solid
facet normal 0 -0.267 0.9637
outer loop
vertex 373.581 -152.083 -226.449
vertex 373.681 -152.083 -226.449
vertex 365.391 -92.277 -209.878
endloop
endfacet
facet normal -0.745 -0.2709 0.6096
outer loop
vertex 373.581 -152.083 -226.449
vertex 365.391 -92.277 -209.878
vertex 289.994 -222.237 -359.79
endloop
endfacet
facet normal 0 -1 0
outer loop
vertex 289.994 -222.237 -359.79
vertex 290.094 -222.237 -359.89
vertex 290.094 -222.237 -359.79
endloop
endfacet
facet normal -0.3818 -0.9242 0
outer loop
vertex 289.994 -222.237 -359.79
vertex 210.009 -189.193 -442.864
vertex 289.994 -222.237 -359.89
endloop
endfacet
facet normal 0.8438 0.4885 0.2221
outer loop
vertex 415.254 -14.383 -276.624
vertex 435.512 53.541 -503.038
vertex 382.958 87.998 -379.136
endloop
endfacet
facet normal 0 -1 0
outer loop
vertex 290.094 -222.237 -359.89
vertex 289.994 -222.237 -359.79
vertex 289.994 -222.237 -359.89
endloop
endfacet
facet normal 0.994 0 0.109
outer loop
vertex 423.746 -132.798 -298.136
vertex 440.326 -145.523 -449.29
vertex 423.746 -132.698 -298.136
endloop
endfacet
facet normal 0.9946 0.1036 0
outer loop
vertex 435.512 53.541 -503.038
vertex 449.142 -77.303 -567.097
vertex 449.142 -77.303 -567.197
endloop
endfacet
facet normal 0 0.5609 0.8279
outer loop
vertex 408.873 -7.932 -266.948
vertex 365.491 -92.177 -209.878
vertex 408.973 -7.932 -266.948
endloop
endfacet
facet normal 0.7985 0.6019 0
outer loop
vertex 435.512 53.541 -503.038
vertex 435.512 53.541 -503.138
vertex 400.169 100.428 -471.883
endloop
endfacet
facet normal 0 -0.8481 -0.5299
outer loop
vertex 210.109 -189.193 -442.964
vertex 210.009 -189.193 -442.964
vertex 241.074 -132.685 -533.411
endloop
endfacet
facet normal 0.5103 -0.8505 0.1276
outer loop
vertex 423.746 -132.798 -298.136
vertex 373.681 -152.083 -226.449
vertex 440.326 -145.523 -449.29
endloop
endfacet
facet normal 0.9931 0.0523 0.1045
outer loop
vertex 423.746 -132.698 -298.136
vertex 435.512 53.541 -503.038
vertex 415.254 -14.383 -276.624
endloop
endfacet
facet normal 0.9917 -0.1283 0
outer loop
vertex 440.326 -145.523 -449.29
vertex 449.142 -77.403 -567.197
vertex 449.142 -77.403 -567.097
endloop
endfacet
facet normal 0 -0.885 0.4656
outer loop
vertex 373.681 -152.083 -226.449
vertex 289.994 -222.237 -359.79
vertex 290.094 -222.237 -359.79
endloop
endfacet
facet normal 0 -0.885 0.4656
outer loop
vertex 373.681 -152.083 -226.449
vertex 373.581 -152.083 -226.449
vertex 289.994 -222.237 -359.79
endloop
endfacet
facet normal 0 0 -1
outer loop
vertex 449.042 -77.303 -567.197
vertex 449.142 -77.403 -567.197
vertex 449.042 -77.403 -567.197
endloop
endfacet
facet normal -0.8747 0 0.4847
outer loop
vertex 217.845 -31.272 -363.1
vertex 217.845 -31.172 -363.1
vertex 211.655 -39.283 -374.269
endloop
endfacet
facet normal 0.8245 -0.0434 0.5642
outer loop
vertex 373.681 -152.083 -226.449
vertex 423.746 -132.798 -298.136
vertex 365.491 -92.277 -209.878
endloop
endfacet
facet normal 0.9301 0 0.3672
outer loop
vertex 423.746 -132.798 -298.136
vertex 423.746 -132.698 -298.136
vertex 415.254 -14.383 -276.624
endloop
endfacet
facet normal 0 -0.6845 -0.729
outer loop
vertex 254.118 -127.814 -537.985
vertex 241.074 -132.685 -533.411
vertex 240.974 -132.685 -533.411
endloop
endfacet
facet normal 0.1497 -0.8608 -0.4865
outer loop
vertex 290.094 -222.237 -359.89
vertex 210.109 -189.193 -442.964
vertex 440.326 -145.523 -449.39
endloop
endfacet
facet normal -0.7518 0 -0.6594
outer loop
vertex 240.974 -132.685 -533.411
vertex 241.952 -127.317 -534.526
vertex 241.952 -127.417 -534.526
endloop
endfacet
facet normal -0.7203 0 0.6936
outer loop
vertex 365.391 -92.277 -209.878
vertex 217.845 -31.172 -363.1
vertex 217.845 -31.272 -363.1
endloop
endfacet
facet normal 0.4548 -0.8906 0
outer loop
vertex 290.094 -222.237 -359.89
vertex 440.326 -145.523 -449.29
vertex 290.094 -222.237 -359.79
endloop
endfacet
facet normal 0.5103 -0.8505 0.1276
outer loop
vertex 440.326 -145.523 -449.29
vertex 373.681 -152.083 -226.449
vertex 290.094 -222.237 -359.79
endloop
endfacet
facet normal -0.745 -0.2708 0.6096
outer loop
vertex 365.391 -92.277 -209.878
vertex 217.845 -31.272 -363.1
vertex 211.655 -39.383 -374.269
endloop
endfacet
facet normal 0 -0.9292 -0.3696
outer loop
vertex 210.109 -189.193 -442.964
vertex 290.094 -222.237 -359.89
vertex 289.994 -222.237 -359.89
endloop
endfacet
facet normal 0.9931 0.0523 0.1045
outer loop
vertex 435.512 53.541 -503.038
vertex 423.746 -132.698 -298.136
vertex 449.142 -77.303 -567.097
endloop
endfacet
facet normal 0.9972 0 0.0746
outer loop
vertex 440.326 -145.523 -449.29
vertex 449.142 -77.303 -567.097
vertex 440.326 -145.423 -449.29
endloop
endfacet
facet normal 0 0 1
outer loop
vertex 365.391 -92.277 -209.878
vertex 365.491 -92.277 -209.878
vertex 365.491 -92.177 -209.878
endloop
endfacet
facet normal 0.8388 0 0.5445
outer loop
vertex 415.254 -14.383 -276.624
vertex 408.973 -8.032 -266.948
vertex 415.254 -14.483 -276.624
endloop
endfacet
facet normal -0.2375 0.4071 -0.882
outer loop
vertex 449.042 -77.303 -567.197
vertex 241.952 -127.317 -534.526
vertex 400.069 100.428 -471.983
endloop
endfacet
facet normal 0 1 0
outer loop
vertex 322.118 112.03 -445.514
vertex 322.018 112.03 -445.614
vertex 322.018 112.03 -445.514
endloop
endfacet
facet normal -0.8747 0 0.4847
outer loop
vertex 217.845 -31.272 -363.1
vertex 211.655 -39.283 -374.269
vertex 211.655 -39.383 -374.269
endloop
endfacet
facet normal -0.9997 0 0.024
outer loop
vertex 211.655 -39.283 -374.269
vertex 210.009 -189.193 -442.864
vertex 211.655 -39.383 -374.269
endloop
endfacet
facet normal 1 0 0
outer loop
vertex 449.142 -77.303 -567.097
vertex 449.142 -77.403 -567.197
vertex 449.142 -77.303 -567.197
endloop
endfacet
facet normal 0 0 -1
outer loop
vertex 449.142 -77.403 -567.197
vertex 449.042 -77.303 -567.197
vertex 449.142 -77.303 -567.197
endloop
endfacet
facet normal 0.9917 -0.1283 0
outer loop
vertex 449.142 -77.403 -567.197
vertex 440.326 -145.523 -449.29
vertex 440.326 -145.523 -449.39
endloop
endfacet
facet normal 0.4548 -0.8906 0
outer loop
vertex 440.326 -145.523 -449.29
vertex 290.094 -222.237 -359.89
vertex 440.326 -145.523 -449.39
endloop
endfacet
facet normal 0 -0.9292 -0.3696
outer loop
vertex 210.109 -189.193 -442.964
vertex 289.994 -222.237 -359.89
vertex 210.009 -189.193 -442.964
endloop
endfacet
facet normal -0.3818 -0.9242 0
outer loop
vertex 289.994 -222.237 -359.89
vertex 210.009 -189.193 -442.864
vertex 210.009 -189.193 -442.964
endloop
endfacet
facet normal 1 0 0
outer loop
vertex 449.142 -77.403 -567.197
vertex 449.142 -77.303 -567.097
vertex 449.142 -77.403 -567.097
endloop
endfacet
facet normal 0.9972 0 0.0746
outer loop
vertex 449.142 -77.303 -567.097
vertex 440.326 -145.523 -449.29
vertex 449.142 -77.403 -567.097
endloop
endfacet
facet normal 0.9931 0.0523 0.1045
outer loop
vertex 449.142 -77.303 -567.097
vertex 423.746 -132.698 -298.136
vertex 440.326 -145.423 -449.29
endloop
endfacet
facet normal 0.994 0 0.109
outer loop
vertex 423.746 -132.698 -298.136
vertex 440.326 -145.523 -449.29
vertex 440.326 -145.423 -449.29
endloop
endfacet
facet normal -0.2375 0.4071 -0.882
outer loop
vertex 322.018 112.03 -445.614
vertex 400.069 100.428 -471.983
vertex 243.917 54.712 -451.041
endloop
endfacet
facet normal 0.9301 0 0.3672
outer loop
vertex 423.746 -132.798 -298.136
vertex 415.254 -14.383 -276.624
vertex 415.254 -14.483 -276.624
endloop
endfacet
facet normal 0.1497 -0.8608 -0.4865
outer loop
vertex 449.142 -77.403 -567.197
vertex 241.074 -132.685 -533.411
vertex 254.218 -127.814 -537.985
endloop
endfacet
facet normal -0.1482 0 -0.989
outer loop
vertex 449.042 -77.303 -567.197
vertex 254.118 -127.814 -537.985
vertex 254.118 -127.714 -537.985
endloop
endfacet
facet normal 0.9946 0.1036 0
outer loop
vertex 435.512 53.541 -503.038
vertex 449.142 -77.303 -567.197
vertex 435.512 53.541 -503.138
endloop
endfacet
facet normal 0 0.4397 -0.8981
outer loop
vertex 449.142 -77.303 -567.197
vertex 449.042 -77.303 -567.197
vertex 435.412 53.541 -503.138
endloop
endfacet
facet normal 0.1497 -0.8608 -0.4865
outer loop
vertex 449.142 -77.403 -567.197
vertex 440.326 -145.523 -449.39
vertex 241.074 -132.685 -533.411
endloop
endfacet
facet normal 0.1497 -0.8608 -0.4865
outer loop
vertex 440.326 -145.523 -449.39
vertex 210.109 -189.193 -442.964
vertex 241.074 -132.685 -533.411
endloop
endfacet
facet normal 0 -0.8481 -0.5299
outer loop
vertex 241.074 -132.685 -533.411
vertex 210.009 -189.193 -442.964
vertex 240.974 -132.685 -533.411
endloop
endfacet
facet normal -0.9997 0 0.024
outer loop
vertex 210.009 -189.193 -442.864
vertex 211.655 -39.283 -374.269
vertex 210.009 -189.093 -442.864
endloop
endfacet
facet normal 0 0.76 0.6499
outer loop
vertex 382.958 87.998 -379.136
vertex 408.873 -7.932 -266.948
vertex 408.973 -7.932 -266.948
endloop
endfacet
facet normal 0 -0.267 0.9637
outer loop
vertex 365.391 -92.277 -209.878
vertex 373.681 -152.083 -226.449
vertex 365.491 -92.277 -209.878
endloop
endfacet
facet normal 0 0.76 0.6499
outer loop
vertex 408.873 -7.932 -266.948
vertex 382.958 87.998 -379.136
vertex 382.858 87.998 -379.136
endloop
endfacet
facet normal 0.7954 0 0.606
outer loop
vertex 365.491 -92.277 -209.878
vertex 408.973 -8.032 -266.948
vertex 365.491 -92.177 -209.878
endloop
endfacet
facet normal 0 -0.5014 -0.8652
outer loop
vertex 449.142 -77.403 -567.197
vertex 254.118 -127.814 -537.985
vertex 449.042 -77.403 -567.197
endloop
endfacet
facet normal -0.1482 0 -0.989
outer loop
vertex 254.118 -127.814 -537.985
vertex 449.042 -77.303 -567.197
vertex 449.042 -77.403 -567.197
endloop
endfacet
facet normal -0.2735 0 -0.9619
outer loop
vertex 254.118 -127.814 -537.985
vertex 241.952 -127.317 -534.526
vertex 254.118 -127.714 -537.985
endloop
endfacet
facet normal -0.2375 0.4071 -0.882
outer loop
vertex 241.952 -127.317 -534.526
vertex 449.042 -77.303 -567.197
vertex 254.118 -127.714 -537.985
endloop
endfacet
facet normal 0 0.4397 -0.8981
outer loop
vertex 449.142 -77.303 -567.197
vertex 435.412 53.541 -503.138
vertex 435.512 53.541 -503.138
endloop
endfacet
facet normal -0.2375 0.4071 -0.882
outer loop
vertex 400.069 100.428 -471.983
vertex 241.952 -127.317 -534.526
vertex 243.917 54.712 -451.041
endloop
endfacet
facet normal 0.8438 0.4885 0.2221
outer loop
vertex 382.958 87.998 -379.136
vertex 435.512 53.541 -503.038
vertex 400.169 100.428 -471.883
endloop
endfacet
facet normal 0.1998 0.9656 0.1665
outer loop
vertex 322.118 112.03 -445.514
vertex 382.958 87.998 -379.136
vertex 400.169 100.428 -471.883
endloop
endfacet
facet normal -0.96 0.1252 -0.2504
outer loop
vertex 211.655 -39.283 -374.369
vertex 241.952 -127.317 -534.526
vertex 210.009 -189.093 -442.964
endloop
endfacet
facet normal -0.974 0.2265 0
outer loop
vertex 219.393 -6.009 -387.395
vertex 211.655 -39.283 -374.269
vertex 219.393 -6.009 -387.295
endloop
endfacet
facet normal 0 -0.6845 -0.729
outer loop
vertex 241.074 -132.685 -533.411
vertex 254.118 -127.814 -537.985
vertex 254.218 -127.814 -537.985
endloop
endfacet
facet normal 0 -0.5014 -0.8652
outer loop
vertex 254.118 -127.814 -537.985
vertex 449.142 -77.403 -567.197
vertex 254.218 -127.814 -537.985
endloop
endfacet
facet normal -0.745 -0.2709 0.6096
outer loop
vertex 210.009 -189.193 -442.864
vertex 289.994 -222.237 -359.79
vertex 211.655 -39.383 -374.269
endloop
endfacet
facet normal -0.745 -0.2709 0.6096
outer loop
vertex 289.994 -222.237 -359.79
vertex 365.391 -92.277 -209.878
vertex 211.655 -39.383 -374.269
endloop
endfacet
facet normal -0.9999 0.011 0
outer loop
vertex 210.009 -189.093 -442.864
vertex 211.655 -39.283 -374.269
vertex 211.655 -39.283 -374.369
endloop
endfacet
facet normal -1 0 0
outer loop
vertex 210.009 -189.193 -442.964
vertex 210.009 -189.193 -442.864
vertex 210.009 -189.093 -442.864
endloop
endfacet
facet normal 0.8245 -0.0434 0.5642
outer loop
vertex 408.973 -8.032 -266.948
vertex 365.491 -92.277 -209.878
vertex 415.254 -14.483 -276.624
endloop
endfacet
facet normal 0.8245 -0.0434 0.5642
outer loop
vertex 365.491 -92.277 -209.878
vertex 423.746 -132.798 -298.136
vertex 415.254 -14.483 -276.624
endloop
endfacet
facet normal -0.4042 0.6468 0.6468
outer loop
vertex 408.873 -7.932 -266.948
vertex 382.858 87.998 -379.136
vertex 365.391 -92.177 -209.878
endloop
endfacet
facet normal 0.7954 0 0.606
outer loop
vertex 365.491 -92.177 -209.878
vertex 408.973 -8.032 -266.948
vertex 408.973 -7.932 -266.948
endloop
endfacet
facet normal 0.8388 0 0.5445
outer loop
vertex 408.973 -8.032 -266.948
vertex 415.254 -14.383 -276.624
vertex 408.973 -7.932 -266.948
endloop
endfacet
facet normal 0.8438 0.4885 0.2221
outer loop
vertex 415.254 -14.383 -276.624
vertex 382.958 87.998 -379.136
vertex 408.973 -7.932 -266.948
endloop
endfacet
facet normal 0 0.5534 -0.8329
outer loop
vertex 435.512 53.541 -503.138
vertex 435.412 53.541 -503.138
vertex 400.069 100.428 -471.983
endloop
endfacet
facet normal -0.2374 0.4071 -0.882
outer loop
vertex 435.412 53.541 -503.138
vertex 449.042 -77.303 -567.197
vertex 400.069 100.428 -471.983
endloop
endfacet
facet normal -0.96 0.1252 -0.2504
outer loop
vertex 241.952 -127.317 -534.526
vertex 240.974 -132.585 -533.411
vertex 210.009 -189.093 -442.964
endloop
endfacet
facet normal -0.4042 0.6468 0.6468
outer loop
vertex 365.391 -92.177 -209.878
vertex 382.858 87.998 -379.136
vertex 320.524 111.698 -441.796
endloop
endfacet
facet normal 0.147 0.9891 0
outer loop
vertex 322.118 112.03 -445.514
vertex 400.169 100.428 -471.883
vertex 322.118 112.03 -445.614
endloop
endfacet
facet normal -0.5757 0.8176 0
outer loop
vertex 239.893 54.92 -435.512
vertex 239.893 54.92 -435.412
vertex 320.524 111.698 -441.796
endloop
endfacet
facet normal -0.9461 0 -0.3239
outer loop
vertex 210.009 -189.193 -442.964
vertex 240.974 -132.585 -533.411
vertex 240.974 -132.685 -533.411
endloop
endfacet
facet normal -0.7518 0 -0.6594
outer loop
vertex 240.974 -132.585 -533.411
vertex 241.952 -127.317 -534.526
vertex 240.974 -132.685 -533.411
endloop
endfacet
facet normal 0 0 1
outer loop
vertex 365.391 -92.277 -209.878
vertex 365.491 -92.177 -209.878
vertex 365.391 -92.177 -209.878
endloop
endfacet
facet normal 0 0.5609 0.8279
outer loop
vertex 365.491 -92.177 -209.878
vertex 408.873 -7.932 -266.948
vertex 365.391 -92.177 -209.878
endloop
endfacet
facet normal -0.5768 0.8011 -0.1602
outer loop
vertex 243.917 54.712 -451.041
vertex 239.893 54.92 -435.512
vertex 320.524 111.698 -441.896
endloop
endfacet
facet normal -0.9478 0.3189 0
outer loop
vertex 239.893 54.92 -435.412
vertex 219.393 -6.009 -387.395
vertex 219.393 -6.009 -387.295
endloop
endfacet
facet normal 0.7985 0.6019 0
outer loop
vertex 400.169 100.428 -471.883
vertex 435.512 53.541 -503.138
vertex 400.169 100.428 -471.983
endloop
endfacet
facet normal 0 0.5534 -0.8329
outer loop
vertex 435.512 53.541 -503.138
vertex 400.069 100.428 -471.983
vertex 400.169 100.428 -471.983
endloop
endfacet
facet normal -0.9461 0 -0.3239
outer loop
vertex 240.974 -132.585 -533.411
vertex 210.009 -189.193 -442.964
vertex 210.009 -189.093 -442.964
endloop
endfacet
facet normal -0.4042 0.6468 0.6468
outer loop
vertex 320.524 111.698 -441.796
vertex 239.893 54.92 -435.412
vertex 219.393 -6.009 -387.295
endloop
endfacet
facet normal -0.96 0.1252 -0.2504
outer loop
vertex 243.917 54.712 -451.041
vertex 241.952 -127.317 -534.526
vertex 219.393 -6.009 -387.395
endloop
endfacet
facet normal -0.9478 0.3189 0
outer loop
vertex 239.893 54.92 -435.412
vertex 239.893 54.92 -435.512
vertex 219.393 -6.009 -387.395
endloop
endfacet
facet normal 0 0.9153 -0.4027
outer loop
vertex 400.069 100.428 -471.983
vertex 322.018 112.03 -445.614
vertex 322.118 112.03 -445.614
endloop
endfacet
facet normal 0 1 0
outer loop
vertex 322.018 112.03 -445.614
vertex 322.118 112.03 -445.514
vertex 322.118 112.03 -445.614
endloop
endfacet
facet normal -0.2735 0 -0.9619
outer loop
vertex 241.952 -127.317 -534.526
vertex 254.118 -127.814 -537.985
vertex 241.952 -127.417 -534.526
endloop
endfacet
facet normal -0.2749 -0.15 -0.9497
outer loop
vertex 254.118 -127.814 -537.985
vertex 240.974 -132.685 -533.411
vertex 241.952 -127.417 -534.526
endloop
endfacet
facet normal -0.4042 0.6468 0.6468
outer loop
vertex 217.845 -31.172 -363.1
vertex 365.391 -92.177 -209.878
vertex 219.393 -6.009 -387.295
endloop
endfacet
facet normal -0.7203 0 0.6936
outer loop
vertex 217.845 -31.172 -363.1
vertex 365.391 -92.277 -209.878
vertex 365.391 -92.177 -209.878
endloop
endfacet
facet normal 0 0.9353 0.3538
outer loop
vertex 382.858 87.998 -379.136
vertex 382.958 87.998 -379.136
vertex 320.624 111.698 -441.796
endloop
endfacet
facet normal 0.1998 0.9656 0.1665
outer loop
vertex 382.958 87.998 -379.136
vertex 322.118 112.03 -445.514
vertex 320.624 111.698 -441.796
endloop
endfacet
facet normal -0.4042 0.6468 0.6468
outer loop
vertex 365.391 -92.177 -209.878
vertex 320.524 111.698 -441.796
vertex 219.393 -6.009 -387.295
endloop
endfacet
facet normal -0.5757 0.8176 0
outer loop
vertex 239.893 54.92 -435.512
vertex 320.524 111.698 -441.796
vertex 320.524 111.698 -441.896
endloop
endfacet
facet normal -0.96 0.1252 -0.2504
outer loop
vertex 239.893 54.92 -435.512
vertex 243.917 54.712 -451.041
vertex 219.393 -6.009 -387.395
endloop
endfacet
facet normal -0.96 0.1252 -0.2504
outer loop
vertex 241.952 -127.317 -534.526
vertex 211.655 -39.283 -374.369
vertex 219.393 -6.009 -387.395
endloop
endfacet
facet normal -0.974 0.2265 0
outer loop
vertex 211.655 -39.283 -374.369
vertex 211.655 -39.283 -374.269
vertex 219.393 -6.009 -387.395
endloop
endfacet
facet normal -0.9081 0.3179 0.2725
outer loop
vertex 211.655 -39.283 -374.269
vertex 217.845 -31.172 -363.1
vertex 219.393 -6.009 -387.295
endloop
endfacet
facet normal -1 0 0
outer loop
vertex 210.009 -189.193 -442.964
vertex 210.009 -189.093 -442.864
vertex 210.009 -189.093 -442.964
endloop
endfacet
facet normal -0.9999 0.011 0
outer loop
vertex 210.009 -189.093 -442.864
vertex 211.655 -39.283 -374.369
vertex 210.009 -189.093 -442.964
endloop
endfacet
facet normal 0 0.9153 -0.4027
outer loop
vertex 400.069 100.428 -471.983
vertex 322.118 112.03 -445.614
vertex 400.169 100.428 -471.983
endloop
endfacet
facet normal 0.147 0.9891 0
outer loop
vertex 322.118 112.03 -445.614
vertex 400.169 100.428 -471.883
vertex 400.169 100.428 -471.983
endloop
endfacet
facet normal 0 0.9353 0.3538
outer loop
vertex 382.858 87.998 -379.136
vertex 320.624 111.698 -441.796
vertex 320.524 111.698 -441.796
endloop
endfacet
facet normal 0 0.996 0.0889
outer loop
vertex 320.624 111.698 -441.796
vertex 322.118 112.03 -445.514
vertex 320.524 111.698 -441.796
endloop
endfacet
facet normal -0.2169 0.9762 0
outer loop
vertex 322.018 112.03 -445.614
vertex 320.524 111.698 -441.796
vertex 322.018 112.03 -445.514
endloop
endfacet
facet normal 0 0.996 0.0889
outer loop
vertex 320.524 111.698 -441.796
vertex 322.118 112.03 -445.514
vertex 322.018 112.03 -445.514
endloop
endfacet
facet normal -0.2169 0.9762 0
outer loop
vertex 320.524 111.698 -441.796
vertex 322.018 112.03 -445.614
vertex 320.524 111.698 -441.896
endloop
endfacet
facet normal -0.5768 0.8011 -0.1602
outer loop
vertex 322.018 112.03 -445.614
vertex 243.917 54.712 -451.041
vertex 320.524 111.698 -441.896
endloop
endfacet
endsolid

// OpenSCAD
hull(){ translate([373.581484315,-152.083397093,-226.548584545])cube(0.1,0.1,0.1);
translate([423.645784268,-132.797927461,-298.235986811])cube(0.1,0.1,0.1);
translate([415.154264973,-14.4827586207,-276.724137931])cube(0.1,0.1,0.1);
translate([289.994219653,-222.23699422,-359.89017341])cube(0.1,0.1,0.1);
translate([440.226480836,-145.522648084,-449.390243902])cube(0.1,0.1,0.1);
translate([382.858267717,87.8976377953,-379.236220472])cube(0.1,0.1,0.1);
translate([408.873015873,-8.03174603175,-267.047619048])cube(0.1,0.1,0.1);
translate([217.844777842,-31.2723600692,-363.19965378])cube(0.1,0.1,0.1);
translate([365.391469471,-92.2772421852,-209.978089395])cube(0.1,0.1,0.1);
translate([449.041972718,-77.4029380902,-567.197271773])cube(0.1,0.1,0.1);
translate([435.412352407,53.4414168937,-503.138056312])cube(0.1,0.1,0.1);
translate([254.117988395,-127.814313346,-537.984526112])cube(0.1,0.1,0.1);
translate([400.068965517,100.327586207,-471.982758621])cube(0.1,0.1,0.1);
translate([320.523535062,111.597822606,-441.895613192])cube(0.1,0.1,0.1);
translate([322.01754386,111.929824561,-445.614035088])cube(0.1,0.1,0.1);
translate([241.952337305,-127.416743049,-534.525664528])cube(0.1,0.1,0.1);
translate([219.393305439,-6.10878661088,-387.39539749])cube(0.1,0.1,0.1);
translate([243.916673324,54.6117280499,-451.041383718])cube(0.1,0.1,0.1);
translate([211.655132641,-39.3829296424,-374.36947328])cube(0.1,0.1,0.1);
translate([239.892835273,54.8203715044,-435.512349459])cube(0.1,0.1,0.1);
translate([210.008869742,-189.192853523,-442.96376077])cube(0.1,0.1,0.1);
translate([240.974240213,-132.685426052,-533.410633843])cube(0.1,0.1,0.1); }
